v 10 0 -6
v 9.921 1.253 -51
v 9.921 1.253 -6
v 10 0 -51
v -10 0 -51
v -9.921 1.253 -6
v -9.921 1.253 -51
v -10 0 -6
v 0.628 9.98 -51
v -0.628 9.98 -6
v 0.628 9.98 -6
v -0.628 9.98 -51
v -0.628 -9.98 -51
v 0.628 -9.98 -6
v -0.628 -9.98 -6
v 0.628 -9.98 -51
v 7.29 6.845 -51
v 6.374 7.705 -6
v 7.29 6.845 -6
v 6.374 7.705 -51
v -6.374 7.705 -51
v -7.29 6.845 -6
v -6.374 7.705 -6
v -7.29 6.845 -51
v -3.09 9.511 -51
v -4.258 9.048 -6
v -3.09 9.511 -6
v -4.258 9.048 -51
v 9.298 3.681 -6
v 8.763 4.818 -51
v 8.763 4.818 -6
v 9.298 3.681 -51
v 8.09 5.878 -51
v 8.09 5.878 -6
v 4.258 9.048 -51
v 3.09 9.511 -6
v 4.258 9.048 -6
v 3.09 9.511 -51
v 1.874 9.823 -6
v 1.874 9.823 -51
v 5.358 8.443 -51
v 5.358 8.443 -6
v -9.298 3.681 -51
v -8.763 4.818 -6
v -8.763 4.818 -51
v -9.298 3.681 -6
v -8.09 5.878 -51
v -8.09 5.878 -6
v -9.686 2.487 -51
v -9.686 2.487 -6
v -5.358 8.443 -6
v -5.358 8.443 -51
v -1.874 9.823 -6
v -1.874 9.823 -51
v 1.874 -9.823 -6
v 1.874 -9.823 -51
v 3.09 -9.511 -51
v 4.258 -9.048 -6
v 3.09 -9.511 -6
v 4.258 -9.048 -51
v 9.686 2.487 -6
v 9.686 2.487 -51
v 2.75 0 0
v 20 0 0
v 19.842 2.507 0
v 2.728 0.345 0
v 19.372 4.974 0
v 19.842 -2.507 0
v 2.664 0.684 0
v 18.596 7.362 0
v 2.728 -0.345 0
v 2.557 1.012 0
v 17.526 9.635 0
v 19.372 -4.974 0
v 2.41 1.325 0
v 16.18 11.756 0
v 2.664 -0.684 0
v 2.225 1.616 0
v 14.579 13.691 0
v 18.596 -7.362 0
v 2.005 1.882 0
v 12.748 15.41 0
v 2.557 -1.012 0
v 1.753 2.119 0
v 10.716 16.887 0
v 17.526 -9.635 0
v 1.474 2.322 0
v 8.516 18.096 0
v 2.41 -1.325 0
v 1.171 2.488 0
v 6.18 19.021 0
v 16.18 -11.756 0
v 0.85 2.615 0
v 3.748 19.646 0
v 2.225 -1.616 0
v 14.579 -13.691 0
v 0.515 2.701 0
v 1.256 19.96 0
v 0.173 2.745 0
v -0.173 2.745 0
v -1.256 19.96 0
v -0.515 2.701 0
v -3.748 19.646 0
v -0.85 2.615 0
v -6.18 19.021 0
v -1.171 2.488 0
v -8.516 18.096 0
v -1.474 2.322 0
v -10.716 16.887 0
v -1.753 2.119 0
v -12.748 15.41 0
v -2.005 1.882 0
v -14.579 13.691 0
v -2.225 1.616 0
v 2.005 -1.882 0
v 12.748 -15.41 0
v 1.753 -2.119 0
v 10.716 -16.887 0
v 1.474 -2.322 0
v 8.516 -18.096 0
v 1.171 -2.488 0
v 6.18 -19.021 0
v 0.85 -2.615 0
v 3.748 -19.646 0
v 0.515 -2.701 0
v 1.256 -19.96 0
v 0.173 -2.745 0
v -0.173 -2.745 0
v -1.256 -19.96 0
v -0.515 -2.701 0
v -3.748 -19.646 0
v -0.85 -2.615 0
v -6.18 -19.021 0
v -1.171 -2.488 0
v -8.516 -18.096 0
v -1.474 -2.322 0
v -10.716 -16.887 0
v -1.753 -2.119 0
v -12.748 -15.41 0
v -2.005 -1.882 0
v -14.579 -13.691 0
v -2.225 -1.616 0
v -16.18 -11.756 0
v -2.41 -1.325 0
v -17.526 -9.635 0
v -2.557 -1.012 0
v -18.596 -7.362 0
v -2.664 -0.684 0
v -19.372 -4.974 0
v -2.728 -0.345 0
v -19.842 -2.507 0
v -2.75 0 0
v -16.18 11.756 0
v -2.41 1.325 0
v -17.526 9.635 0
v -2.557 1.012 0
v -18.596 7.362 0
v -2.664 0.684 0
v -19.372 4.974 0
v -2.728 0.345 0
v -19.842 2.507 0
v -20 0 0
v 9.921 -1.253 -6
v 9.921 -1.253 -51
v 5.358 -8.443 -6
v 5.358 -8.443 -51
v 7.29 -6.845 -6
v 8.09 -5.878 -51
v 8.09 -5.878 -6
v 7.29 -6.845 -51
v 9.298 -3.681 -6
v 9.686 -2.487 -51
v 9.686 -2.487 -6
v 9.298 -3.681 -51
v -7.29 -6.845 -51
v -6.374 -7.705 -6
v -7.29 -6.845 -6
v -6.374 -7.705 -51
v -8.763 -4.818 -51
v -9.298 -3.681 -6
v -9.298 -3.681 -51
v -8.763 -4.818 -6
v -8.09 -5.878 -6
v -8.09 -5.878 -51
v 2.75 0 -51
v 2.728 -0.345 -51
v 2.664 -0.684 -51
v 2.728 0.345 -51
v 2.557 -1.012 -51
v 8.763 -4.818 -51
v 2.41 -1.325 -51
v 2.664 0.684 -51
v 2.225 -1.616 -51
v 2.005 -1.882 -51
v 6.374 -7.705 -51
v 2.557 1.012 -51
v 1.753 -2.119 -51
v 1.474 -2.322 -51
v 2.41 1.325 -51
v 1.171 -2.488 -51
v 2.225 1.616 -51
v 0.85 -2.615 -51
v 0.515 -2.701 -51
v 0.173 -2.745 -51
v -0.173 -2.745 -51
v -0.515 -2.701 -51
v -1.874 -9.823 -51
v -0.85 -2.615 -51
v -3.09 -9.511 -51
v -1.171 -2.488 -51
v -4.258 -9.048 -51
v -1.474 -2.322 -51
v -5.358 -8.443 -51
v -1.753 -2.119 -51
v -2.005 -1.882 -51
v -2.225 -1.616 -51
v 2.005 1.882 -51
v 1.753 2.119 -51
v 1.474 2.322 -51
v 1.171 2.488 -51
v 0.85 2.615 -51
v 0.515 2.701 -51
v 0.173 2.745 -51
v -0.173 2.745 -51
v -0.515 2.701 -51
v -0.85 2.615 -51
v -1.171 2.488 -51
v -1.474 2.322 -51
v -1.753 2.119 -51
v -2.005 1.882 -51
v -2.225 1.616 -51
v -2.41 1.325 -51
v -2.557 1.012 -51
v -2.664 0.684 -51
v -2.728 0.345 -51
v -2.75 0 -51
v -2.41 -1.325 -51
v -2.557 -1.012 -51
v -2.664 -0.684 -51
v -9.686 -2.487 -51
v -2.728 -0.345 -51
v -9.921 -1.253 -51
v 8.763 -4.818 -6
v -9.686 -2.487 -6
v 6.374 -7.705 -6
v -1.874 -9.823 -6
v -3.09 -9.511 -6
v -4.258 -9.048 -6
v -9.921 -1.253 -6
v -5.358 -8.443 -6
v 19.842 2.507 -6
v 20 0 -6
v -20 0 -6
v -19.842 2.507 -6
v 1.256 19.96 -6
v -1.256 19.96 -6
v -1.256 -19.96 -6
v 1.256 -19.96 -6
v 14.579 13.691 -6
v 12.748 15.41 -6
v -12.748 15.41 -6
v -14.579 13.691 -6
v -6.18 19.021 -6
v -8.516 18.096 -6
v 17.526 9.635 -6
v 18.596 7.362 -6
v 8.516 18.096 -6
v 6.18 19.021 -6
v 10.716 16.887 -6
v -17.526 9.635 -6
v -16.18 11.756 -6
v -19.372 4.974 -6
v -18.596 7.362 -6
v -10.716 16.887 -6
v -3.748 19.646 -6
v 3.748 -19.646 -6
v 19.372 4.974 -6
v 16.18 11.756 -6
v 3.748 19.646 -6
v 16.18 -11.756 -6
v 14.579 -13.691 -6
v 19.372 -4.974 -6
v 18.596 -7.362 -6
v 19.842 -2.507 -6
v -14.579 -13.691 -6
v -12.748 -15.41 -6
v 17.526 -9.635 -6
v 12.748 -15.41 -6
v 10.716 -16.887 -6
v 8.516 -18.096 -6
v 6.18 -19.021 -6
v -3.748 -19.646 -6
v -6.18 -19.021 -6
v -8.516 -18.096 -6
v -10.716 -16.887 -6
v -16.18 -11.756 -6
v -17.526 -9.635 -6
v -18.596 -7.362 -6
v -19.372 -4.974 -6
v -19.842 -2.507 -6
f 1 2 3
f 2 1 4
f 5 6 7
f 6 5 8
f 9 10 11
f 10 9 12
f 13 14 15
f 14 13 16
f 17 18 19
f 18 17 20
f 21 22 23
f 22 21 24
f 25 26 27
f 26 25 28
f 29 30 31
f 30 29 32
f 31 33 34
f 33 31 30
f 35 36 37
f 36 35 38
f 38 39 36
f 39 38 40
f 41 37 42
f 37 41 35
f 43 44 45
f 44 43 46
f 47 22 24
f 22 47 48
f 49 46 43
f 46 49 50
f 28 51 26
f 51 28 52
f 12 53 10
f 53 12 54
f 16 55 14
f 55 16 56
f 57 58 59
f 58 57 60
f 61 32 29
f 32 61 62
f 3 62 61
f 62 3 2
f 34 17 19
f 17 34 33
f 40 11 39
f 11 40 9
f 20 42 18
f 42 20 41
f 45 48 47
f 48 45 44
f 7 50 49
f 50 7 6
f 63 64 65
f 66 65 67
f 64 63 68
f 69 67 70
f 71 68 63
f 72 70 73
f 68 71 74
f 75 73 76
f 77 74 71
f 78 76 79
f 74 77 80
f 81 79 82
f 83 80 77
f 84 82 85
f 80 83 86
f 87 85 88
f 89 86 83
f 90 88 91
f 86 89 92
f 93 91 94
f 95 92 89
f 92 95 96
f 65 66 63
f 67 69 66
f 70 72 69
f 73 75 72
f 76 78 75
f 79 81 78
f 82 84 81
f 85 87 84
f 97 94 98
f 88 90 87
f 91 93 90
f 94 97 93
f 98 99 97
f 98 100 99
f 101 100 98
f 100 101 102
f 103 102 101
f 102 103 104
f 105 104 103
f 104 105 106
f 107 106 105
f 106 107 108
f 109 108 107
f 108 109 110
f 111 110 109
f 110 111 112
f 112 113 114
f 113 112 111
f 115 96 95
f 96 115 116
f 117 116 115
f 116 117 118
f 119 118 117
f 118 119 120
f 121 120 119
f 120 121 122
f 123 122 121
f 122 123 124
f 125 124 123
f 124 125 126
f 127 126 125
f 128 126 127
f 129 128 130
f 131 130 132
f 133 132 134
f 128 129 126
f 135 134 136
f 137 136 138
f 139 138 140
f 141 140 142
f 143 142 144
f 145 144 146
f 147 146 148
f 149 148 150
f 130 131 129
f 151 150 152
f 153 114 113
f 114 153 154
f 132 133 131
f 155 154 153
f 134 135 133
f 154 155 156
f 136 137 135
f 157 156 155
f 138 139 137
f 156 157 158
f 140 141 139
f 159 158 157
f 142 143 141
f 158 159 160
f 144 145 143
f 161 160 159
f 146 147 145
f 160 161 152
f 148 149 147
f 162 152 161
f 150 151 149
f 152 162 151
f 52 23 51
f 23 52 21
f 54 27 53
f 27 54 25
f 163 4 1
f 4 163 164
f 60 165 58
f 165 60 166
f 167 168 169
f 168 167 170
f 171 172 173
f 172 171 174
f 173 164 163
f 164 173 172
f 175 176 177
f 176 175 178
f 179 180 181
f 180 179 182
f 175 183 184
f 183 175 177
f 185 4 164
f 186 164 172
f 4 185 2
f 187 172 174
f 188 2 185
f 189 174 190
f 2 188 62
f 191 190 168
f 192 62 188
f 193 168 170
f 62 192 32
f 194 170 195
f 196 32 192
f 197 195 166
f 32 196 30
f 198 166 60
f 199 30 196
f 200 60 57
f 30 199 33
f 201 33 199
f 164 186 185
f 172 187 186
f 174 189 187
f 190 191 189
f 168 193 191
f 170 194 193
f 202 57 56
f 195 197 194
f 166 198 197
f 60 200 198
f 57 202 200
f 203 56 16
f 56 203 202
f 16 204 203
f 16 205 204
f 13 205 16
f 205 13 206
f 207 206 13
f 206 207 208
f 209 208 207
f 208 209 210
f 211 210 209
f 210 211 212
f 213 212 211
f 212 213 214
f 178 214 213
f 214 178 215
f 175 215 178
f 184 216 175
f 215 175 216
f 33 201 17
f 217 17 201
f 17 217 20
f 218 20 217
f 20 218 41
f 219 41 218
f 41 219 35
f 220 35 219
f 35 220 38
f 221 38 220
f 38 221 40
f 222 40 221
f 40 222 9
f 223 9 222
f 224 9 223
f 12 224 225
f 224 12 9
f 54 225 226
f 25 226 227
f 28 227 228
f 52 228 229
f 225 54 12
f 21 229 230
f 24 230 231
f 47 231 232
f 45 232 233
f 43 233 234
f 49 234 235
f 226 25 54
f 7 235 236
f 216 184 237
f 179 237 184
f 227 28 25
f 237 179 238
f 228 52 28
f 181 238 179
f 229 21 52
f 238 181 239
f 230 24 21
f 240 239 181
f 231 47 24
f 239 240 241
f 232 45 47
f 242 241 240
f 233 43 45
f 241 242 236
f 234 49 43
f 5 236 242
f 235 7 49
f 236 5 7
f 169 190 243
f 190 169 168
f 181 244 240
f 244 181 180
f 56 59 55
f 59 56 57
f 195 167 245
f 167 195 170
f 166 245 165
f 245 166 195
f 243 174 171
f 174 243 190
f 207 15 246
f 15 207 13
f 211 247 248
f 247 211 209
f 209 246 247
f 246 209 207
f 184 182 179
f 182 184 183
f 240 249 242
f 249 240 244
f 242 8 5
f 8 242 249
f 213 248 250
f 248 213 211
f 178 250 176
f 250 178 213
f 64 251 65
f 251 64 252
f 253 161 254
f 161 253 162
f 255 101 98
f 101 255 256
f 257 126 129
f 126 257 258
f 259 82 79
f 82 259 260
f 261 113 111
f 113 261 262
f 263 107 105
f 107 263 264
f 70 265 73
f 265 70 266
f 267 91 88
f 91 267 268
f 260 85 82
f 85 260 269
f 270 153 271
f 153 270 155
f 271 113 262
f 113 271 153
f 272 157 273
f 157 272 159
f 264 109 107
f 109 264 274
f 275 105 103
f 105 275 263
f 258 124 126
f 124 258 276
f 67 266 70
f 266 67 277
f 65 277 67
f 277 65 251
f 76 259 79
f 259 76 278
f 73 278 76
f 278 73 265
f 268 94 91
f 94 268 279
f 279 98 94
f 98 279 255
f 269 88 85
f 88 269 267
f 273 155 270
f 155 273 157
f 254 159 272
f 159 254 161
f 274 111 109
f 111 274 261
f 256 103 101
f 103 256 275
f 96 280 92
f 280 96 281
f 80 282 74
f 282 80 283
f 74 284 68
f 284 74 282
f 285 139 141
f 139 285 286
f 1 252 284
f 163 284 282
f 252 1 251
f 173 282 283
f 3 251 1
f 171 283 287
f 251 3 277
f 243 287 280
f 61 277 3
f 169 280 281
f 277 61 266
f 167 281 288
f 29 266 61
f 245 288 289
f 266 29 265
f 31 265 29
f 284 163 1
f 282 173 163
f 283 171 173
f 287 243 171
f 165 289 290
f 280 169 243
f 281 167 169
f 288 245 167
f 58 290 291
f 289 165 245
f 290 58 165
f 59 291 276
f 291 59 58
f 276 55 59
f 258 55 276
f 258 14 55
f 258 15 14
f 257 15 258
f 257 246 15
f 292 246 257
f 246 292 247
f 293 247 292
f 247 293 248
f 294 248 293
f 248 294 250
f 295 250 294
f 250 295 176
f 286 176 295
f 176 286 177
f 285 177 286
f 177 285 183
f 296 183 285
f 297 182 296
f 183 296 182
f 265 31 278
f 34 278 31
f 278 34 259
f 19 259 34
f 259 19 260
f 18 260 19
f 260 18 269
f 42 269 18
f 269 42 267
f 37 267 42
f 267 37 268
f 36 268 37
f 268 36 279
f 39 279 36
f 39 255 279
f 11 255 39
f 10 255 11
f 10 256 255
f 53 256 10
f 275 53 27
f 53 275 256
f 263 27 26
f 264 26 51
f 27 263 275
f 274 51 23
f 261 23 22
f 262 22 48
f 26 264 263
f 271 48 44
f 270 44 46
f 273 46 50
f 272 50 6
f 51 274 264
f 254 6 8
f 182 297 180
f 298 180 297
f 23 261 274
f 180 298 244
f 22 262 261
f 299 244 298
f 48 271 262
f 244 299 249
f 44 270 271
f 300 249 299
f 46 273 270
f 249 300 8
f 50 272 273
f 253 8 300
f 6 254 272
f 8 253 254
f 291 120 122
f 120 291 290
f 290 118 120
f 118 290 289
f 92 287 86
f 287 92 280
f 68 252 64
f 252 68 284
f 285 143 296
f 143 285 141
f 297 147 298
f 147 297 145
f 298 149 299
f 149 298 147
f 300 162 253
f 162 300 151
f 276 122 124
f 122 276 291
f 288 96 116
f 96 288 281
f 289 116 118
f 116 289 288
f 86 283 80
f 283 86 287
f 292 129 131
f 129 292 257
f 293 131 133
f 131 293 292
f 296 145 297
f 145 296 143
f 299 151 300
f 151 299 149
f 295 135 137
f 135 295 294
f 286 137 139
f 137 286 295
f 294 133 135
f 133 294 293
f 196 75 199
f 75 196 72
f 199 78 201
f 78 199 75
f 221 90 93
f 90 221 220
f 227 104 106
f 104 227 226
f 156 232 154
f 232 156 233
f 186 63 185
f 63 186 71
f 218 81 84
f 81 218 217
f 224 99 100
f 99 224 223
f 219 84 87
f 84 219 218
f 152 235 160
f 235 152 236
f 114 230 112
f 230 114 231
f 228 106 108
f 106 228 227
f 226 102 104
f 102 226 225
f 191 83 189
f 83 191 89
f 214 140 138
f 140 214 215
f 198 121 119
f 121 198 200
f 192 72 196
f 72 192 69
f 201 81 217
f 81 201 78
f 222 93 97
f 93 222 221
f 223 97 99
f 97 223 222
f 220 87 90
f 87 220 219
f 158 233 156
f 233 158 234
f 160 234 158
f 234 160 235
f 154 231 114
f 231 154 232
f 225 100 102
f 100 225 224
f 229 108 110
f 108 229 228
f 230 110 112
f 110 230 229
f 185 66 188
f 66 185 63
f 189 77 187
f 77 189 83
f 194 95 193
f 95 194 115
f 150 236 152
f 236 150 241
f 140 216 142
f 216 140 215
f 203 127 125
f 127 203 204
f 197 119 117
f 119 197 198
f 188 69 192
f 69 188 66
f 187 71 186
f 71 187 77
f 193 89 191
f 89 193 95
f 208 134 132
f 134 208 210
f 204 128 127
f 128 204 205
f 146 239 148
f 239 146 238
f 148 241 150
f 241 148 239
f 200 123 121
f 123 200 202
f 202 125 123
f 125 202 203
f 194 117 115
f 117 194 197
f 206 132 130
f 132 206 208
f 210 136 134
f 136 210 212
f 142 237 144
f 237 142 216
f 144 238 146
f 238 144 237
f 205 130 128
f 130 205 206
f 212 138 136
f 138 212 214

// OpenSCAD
$fn = 50;


difference() {
	union() {
		translate(v = [0, 0, -51.0000000000]) {
			cylinder(h = 51, r = 10.0000000000);
		}
		translate(v = [0, 0, -6.0000000000]) {
			cylinder(h = 6, r = 20.0000000000);
		}
	}
	union() {
		#translate(v = [0, 0, -51]) {
			cylinder(h = 51, r = 2.7500000000);
		}
	}
}
